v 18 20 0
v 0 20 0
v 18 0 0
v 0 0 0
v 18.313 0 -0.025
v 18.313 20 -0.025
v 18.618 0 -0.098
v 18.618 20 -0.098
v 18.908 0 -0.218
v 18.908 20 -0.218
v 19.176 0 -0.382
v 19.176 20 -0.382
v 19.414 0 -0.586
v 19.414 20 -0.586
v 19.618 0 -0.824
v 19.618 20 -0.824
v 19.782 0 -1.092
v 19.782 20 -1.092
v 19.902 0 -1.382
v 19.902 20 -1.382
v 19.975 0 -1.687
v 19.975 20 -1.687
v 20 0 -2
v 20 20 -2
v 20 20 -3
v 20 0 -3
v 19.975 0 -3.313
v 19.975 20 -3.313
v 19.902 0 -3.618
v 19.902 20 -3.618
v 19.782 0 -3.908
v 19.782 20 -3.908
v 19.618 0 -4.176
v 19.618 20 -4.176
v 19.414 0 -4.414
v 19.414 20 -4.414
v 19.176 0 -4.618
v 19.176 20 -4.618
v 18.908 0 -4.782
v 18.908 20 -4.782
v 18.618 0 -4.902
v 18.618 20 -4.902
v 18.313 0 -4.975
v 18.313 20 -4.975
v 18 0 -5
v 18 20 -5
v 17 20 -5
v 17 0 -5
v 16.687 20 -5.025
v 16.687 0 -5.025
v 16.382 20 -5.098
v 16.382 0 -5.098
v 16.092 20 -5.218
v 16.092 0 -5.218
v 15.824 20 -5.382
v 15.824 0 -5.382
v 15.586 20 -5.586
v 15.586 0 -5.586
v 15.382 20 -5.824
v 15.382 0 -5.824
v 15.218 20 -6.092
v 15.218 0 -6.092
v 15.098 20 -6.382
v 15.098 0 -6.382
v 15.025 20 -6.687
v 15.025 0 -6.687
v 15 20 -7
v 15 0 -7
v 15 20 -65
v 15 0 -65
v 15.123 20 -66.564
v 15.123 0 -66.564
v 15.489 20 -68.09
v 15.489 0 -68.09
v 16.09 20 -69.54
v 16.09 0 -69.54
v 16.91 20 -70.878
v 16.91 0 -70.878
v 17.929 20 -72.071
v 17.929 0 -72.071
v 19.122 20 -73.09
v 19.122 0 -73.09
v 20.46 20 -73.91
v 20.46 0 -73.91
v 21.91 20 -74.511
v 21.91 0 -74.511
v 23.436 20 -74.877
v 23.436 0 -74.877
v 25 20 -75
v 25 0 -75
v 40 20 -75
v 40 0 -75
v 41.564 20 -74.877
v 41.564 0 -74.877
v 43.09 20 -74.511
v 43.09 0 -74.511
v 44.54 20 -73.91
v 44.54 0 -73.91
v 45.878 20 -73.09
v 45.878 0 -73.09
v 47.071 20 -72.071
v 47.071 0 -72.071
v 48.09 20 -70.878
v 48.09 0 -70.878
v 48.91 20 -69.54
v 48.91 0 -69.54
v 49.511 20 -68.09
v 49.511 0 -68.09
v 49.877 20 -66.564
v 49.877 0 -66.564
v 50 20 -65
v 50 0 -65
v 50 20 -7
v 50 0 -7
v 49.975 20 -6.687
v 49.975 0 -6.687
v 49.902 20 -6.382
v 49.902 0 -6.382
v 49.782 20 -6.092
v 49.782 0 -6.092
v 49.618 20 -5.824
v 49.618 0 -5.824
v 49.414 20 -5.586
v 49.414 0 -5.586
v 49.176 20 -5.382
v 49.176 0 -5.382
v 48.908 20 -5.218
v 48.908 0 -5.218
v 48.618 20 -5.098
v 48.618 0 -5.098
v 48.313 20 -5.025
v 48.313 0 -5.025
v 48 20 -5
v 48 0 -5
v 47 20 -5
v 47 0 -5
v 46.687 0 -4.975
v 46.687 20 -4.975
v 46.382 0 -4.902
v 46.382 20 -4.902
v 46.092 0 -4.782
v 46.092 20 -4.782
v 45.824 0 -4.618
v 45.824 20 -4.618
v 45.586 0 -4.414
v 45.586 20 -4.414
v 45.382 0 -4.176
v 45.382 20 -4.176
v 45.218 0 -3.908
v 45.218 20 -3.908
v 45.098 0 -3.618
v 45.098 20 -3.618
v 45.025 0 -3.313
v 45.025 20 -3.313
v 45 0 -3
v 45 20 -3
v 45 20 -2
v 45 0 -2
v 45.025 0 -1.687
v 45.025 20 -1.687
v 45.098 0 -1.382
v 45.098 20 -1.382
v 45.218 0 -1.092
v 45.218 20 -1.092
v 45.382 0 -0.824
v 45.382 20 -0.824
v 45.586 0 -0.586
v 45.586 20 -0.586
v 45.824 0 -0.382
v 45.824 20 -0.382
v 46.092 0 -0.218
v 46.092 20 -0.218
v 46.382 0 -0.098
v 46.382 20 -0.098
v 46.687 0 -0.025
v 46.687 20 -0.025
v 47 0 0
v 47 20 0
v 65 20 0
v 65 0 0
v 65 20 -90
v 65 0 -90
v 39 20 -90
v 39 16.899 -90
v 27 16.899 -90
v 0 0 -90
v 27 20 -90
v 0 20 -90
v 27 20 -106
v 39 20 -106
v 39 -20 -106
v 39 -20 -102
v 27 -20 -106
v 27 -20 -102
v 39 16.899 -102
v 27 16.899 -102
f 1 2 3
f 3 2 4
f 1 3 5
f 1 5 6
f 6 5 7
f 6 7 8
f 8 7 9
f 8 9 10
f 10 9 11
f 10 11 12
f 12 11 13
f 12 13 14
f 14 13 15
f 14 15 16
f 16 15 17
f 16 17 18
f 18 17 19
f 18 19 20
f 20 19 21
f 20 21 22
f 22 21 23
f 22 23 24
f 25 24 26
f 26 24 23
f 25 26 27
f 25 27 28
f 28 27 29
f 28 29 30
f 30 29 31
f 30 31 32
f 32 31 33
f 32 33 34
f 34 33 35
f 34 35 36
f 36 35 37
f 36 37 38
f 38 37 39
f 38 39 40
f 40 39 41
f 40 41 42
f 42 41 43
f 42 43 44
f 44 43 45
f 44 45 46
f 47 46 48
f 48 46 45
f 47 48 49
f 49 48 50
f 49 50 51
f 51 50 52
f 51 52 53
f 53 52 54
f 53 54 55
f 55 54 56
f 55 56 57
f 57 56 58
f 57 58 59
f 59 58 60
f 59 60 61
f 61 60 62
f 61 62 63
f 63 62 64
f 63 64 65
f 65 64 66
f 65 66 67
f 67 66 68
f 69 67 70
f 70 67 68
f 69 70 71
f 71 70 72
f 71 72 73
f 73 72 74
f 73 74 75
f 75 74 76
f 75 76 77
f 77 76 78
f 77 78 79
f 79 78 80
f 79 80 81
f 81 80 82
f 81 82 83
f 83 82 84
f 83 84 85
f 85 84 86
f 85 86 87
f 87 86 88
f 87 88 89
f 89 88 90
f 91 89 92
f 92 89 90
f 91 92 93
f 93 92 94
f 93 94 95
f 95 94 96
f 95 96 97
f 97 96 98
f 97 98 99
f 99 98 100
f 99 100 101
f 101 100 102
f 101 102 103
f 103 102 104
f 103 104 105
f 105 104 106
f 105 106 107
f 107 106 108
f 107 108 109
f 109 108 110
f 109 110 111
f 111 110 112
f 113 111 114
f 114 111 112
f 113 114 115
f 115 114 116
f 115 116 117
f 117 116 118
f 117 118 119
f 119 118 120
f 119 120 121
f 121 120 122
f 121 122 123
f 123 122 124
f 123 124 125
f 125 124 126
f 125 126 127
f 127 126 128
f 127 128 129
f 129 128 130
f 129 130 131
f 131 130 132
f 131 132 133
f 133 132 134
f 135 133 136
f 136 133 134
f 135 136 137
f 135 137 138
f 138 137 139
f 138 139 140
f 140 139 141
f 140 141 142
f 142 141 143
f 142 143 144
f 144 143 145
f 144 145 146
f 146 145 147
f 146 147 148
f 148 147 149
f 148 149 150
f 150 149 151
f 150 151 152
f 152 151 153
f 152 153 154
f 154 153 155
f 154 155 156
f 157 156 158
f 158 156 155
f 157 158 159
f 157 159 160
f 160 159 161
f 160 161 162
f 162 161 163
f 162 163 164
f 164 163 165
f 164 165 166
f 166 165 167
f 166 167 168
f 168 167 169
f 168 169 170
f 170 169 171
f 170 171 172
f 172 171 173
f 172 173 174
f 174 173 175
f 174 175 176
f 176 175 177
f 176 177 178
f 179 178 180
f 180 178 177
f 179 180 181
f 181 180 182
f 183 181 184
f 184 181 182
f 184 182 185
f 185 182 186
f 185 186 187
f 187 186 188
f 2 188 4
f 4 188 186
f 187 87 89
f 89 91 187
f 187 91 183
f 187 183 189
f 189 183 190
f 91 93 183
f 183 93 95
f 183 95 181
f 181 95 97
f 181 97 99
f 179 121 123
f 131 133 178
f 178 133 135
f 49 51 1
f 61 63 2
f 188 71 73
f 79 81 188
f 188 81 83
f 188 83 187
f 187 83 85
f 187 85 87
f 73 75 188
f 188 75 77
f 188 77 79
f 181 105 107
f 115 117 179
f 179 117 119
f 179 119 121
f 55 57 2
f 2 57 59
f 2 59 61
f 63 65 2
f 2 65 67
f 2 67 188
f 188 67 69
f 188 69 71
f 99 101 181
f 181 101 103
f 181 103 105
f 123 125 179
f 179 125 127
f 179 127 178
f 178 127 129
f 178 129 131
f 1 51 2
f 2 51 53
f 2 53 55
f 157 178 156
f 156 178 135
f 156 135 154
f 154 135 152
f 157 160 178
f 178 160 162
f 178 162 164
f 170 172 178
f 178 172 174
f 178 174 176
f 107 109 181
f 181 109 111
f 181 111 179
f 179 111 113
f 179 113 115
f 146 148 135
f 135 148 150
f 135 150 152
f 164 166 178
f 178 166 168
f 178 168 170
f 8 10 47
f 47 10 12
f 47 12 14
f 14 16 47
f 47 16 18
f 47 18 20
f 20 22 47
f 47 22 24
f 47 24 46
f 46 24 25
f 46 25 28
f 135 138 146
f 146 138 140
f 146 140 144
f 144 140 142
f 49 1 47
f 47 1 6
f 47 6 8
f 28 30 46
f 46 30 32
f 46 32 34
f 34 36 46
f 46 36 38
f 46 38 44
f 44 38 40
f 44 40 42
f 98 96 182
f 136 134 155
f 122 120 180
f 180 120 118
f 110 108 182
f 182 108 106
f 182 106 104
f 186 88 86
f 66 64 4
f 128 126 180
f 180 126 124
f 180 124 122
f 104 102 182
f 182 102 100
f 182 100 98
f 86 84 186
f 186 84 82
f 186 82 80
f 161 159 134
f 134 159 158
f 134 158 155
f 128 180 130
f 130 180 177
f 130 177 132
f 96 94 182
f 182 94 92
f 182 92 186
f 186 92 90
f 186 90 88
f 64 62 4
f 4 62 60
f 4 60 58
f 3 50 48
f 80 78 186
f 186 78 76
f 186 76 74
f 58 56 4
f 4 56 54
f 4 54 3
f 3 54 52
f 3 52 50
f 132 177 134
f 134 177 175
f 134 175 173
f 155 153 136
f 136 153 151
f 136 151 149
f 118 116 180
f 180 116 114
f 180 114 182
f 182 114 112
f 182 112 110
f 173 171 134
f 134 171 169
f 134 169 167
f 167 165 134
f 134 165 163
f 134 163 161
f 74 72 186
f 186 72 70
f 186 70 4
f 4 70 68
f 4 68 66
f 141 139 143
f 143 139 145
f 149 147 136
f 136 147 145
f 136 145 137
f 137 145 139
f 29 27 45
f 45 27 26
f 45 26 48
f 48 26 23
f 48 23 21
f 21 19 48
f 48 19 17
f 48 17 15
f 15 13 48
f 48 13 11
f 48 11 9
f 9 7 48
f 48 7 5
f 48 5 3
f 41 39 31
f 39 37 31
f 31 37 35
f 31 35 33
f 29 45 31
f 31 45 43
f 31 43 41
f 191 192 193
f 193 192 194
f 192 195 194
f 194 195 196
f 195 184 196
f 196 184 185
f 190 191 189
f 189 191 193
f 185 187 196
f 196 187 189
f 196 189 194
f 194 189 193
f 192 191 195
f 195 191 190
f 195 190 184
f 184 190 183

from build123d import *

# Parameters (mm, degrees)
EXTRUDE_1_DEPTH     = 20
EXTRUDE_2_DEPTH     = 64
CUT_EXTRUDE_1_DEPTH = 64


with BuildPart() as part:
    # Эскиз4 → Бобышка-Вытянуть1 (new body)
    with BuildSketch(Plane(origin=(0, 0, 0), x_dir=(1, 0, 0), z_dir=(0, 1, 0))):
        with BuildLine():
            Line((0, 0), (0, 90))
            Line((0, 90), (65, 90))
            Line((65, 90), (65, 0))
            Line((65, 0), (47, 0))
            ThreePointArc((47, 0), (45.585786438, 0.585786438), (45, 2))
            Line((45, 2), (45, 3))
            ThreePointArc((45, 3), (45.585786438, 4.414213562), (47, 5))
            Line((47, 5), (48, 5))
            ThreePointArc((48, 5), (49.414213562, 5.585786438), (50, 7))
            Line((50, 7), (50, 65))
            ThreePointArc((50, 65), (47.071067812, 72.071067812), (40, 75))
            Line((40, 75), (25, 75))
            ThreePointArc((25, 75), (17.928932188, 72.071067812), (15, 65))
            Line((15, 65), (15, 7))
            ThreePointArc((15, 7), (15.585786438, 5.585786438), (17, 5))
            Line((17, 5), (18, 5))
            ThreePointArc((18, 5), (19.414213562, 4.414213562), (20, 3))
            Line((20, 3), (20, 2))
            ThreePointArc((20, 2), (19.414213562, 0.585786438), (18, 0))
            Line((18, 0), (0, 0))
        make_face()
    extrude(amount=EXTRUDE_1_DEPTH)

    # Эскиз6 → Бобышка-Вытянуть2 (add)
    with BuildSketch(Plane(origin=(65, 0, 0), x_dir=(0, 0, -1), z_dir=(1, 0, 0))):
        Polygon((90, 20), (106, 20), (106, -20), (102, -20), (102, 16.898771426), (90, 16.898771426), align=None)
    extrude(amount=-EXTRUDE_2_DEPTH)

    # Эскиз7 → Вырез-Вытянуть1 (cut)
    with BuildSketch(Plane(origin=(0, 20, 0), x_dir=(1, 0, 0), z_dir=(0, 1, 0))):
        Polygon((27, 109.944844375), (27, 90), (-10.963229583, 90), (-10.963229583, 111.789211804), align=None)
        Polygon((39, 90), (39, 113.326184662), (82.188937299, 109.944844375), (82.188937299, 90), align=None)
    extrude(amount=-CUT_EXTRUDE_1_DEPTH, mode=Mode.SUBTRACT)


solid = part.part
